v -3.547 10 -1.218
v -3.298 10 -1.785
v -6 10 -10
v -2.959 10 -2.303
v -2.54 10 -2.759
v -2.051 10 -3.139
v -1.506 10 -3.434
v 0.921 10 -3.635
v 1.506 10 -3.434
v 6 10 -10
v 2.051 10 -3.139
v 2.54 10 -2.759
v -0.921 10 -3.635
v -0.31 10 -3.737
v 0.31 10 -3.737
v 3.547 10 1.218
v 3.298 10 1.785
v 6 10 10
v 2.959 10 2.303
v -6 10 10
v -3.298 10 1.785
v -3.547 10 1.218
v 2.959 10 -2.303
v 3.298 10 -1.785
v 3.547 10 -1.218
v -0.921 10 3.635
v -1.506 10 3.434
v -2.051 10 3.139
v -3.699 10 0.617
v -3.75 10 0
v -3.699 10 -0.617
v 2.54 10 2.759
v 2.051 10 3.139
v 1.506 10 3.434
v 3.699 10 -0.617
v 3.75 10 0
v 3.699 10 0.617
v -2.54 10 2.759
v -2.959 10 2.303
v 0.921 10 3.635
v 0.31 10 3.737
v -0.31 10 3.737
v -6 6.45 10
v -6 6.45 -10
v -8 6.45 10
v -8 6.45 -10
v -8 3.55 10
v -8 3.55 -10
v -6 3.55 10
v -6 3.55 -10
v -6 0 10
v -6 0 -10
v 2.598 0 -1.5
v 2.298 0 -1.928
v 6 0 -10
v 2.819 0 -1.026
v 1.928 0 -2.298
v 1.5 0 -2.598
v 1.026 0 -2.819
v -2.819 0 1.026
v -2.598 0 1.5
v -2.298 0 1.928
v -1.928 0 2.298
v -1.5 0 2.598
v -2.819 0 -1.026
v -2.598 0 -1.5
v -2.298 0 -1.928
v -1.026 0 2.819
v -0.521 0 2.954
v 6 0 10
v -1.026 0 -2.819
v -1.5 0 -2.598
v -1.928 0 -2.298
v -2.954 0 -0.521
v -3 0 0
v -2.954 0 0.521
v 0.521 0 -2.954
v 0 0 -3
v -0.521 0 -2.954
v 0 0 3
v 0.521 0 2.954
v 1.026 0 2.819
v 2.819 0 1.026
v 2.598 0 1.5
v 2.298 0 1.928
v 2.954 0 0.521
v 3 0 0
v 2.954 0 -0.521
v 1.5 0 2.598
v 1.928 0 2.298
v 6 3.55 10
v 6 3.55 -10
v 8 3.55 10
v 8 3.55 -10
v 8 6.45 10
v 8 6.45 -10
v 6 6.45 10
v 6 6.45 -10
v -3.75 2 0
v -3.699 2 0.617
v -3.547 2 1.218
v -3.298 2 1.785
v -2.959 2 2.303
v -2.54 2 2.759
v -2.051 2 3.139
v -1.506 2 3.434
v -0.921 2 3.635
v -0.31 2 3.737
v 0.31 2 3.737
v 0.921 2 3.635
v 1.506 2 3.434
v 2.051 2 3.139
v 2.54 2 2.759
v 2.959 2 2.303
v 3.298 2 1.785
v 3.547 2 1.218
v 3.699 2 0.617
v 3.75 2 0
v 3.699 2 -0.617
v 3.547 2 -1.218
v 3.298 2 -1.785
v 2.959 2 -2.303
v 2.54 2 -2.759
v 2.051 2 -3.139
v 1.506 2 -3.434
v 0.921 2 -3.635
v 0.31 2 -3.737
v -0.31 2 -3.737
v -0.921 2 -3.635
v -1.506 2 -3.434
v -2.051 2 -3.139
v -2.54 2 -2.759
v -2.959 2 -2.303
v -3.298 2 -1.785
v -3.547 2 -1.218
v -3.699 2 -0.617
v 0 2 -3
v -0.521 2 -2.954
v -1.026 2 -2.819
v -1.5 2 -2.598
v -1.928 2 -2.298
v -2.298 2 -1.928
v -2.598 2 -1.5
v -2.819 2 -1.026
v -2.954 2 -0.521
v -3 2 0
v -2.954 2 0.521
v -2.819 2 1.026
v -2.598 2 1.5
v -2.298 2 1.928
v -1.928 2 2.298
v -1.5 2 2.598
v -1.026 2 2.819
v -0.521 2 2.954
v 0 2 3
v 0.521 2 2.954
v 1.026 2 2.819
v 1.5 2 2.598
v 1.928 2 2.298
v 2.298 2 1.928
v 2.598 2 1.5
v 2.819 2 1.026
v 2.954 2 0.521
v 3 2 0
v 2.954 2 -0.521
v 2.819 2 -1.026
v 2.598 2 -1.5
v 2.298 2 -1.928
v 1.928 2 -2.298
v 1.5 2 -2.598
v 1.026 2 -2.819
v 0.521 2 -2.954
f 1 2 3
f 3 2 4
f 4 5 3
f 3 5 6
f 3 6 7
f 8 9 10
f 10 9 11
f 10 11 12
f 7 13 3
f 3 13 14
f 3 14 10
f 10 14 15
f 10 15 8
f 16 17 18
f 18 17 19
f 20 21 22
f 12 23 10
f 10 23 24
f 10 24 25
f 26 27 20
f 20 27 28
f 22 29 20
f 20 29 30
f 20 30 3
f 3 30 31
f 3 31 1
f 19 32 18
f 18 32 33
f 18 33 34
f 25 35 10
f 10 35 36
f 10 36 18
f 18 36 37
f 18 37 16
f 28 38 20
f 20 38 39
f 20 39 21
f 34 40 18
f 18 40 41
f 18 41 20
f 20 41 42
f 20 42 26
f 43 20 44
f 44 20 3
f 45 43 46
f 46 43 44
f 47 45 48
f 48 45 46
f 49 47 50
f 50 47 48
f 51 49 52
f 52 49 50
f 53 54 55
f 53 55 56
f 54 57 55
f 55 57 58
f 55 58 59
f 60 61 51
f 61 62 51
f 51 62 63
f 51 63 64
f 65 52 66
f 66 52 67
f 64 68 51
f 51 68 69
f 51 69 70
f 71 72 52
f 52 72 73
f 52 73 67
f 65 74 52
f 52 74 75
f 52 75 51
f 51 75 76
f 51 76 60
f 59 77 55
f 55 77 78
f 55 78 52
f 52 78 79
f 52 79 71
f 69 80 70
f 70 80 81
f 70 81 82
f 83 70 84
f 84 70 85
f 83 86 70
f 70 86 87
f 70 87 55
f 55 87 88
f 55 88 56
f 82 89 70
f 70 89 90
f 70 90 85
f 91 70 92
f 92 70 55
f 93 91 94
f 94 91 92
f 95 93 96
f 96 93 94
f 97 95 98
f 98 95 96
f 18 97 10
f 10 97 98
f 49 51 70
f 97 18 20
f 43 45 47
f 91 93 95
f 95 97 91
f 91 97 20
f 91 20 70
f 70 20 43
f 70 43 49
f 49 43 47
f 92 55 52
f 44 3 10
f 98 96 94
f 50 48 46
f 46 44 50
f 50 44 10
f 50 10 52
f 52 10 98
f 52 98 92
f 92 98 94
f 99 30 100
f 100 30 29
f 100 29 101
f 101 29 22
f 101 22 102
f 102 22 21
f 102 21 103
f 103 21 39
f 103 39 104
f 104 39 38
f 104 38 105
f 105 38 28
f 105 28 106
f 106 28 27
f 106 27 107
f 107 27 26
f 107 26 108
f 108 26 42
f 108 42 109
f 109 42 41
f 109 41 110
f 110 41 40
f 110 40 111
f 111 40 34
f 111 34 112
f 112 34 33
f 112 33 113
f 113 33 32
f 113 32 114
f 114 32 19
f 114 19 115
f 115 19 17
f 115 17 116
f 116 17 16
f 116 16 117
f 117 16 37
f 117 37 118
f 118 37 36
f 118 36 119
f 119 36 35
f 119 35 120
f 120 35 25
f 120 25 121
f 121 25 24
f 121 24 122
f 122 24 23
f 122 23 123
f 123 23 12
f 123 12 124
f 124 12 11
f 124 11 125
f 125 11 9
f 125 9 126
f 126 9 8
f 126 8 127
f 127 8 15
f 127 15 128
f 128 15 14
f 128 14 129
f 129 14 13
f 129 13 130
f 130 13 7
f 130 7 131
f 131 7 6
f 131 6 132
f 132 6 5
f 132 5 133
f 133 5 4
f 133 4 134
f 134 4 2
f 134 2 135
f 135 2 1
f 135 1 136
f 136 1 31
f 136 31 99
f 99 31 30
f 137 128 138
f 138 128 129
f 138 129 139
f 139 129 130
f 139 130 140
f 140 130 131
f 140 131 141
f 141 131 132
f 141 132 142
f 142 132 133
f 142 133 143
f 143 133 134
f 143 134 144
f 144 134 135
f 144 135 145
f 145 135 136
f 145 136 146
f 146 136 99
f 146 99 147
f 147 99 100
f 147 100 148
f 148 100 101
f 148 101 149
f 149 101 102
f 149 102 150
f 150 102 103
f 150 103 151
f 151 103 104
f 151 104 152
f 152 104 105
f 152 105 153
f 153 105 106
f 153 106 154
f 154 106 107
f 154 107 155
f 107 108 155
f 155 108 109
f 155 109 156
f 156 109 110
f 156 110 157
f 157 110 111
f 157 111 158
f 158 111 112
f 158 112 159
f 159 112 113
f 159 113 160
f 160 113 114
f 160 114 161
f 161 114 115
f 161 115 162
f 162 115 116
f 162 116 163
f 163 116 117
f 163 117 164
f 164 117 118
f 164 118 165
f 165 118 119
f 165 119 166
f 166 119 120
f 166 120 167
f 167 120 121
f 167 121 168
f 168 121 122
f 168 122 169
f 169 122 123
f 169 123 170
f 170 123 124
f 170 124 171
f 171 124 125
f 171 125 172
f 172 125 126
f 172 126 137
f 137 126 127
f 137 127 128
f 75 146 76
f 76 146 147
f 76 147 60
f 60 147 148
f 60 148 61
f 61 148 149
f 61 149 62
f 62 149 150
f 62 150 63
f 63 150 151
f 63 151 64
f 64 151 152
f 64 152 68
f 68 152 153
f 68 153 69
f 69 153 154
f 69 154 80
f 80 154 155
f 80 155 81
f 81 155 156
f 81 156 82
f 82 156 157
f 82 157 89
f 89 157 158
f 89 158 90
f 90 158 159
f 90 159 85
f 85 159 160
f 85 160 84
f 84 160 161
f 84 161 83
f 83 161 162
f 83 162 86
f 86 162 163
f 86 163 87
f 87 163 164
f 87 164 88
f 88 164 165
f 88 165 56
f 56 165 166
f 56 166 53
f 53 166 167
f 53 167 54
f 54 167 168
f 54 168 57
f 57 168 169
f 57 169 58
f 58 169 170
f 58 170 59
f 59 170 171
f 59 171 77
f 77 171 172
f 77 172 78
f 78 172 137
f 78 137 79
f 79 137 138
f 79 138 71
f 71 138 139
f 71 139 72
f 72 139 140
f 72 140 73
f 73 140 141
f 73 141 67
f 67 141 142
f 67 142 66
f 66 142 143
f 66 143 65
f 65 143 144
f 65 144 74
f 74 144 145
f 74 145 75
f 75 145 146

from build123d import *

# Parameters (mm, degrees)
BOSS_EXTRUDE1_DEPTH = 10
SKETCH2_R           = 3.75
CUT_EXTRUDE1_DEPTH  = 8
SKETCH3_R           = 3
CUT_EXTRUDE2_DEPTH  = 3


with BuildPart() as part:
    # Sketch1 → Boss-Extrude1 (new body, symmetric)
    with BuildSketch(Plane.XY):
        Polygon((-6, 10), (-6, 6.45), (-8, 6.45), (-8, 3.55), (-6, 3.55), (-6, 0), (6, 0), (6, 3.55), (8, 3.55), (8, 6.45), (6, 6.45), (6, 10), align=None)
    extrude(amount=BOSS_EXTRUDE1_DEPTH, both=True)

    # Sketch2 → Cut-Extrude1 (cut)
    with BuildSketch(Plane(origin=(0, 10, 0), x_dir=(1, 0, 0), z_dir=(0, 1, 0))):
        Circle(SKETCH2_R)
    extrude(amount=-CUT_EXTRUDE1_DEPTH, mode=Mode.SUBTRACT)

    # Sketch3 → Cut-Extrude2 (cut, through all)
    with BuildSketch(Plane(origin=(0, 2, 0), x_dir=(1, 0, 0), z_dir=(0, 1, 0))):
        Circle(SKETCH3_R)
    extrude(amount=-CUT_EXTRUDE2_DEPTH, mode=Mode.SUBTRACT)


solid = part.part
